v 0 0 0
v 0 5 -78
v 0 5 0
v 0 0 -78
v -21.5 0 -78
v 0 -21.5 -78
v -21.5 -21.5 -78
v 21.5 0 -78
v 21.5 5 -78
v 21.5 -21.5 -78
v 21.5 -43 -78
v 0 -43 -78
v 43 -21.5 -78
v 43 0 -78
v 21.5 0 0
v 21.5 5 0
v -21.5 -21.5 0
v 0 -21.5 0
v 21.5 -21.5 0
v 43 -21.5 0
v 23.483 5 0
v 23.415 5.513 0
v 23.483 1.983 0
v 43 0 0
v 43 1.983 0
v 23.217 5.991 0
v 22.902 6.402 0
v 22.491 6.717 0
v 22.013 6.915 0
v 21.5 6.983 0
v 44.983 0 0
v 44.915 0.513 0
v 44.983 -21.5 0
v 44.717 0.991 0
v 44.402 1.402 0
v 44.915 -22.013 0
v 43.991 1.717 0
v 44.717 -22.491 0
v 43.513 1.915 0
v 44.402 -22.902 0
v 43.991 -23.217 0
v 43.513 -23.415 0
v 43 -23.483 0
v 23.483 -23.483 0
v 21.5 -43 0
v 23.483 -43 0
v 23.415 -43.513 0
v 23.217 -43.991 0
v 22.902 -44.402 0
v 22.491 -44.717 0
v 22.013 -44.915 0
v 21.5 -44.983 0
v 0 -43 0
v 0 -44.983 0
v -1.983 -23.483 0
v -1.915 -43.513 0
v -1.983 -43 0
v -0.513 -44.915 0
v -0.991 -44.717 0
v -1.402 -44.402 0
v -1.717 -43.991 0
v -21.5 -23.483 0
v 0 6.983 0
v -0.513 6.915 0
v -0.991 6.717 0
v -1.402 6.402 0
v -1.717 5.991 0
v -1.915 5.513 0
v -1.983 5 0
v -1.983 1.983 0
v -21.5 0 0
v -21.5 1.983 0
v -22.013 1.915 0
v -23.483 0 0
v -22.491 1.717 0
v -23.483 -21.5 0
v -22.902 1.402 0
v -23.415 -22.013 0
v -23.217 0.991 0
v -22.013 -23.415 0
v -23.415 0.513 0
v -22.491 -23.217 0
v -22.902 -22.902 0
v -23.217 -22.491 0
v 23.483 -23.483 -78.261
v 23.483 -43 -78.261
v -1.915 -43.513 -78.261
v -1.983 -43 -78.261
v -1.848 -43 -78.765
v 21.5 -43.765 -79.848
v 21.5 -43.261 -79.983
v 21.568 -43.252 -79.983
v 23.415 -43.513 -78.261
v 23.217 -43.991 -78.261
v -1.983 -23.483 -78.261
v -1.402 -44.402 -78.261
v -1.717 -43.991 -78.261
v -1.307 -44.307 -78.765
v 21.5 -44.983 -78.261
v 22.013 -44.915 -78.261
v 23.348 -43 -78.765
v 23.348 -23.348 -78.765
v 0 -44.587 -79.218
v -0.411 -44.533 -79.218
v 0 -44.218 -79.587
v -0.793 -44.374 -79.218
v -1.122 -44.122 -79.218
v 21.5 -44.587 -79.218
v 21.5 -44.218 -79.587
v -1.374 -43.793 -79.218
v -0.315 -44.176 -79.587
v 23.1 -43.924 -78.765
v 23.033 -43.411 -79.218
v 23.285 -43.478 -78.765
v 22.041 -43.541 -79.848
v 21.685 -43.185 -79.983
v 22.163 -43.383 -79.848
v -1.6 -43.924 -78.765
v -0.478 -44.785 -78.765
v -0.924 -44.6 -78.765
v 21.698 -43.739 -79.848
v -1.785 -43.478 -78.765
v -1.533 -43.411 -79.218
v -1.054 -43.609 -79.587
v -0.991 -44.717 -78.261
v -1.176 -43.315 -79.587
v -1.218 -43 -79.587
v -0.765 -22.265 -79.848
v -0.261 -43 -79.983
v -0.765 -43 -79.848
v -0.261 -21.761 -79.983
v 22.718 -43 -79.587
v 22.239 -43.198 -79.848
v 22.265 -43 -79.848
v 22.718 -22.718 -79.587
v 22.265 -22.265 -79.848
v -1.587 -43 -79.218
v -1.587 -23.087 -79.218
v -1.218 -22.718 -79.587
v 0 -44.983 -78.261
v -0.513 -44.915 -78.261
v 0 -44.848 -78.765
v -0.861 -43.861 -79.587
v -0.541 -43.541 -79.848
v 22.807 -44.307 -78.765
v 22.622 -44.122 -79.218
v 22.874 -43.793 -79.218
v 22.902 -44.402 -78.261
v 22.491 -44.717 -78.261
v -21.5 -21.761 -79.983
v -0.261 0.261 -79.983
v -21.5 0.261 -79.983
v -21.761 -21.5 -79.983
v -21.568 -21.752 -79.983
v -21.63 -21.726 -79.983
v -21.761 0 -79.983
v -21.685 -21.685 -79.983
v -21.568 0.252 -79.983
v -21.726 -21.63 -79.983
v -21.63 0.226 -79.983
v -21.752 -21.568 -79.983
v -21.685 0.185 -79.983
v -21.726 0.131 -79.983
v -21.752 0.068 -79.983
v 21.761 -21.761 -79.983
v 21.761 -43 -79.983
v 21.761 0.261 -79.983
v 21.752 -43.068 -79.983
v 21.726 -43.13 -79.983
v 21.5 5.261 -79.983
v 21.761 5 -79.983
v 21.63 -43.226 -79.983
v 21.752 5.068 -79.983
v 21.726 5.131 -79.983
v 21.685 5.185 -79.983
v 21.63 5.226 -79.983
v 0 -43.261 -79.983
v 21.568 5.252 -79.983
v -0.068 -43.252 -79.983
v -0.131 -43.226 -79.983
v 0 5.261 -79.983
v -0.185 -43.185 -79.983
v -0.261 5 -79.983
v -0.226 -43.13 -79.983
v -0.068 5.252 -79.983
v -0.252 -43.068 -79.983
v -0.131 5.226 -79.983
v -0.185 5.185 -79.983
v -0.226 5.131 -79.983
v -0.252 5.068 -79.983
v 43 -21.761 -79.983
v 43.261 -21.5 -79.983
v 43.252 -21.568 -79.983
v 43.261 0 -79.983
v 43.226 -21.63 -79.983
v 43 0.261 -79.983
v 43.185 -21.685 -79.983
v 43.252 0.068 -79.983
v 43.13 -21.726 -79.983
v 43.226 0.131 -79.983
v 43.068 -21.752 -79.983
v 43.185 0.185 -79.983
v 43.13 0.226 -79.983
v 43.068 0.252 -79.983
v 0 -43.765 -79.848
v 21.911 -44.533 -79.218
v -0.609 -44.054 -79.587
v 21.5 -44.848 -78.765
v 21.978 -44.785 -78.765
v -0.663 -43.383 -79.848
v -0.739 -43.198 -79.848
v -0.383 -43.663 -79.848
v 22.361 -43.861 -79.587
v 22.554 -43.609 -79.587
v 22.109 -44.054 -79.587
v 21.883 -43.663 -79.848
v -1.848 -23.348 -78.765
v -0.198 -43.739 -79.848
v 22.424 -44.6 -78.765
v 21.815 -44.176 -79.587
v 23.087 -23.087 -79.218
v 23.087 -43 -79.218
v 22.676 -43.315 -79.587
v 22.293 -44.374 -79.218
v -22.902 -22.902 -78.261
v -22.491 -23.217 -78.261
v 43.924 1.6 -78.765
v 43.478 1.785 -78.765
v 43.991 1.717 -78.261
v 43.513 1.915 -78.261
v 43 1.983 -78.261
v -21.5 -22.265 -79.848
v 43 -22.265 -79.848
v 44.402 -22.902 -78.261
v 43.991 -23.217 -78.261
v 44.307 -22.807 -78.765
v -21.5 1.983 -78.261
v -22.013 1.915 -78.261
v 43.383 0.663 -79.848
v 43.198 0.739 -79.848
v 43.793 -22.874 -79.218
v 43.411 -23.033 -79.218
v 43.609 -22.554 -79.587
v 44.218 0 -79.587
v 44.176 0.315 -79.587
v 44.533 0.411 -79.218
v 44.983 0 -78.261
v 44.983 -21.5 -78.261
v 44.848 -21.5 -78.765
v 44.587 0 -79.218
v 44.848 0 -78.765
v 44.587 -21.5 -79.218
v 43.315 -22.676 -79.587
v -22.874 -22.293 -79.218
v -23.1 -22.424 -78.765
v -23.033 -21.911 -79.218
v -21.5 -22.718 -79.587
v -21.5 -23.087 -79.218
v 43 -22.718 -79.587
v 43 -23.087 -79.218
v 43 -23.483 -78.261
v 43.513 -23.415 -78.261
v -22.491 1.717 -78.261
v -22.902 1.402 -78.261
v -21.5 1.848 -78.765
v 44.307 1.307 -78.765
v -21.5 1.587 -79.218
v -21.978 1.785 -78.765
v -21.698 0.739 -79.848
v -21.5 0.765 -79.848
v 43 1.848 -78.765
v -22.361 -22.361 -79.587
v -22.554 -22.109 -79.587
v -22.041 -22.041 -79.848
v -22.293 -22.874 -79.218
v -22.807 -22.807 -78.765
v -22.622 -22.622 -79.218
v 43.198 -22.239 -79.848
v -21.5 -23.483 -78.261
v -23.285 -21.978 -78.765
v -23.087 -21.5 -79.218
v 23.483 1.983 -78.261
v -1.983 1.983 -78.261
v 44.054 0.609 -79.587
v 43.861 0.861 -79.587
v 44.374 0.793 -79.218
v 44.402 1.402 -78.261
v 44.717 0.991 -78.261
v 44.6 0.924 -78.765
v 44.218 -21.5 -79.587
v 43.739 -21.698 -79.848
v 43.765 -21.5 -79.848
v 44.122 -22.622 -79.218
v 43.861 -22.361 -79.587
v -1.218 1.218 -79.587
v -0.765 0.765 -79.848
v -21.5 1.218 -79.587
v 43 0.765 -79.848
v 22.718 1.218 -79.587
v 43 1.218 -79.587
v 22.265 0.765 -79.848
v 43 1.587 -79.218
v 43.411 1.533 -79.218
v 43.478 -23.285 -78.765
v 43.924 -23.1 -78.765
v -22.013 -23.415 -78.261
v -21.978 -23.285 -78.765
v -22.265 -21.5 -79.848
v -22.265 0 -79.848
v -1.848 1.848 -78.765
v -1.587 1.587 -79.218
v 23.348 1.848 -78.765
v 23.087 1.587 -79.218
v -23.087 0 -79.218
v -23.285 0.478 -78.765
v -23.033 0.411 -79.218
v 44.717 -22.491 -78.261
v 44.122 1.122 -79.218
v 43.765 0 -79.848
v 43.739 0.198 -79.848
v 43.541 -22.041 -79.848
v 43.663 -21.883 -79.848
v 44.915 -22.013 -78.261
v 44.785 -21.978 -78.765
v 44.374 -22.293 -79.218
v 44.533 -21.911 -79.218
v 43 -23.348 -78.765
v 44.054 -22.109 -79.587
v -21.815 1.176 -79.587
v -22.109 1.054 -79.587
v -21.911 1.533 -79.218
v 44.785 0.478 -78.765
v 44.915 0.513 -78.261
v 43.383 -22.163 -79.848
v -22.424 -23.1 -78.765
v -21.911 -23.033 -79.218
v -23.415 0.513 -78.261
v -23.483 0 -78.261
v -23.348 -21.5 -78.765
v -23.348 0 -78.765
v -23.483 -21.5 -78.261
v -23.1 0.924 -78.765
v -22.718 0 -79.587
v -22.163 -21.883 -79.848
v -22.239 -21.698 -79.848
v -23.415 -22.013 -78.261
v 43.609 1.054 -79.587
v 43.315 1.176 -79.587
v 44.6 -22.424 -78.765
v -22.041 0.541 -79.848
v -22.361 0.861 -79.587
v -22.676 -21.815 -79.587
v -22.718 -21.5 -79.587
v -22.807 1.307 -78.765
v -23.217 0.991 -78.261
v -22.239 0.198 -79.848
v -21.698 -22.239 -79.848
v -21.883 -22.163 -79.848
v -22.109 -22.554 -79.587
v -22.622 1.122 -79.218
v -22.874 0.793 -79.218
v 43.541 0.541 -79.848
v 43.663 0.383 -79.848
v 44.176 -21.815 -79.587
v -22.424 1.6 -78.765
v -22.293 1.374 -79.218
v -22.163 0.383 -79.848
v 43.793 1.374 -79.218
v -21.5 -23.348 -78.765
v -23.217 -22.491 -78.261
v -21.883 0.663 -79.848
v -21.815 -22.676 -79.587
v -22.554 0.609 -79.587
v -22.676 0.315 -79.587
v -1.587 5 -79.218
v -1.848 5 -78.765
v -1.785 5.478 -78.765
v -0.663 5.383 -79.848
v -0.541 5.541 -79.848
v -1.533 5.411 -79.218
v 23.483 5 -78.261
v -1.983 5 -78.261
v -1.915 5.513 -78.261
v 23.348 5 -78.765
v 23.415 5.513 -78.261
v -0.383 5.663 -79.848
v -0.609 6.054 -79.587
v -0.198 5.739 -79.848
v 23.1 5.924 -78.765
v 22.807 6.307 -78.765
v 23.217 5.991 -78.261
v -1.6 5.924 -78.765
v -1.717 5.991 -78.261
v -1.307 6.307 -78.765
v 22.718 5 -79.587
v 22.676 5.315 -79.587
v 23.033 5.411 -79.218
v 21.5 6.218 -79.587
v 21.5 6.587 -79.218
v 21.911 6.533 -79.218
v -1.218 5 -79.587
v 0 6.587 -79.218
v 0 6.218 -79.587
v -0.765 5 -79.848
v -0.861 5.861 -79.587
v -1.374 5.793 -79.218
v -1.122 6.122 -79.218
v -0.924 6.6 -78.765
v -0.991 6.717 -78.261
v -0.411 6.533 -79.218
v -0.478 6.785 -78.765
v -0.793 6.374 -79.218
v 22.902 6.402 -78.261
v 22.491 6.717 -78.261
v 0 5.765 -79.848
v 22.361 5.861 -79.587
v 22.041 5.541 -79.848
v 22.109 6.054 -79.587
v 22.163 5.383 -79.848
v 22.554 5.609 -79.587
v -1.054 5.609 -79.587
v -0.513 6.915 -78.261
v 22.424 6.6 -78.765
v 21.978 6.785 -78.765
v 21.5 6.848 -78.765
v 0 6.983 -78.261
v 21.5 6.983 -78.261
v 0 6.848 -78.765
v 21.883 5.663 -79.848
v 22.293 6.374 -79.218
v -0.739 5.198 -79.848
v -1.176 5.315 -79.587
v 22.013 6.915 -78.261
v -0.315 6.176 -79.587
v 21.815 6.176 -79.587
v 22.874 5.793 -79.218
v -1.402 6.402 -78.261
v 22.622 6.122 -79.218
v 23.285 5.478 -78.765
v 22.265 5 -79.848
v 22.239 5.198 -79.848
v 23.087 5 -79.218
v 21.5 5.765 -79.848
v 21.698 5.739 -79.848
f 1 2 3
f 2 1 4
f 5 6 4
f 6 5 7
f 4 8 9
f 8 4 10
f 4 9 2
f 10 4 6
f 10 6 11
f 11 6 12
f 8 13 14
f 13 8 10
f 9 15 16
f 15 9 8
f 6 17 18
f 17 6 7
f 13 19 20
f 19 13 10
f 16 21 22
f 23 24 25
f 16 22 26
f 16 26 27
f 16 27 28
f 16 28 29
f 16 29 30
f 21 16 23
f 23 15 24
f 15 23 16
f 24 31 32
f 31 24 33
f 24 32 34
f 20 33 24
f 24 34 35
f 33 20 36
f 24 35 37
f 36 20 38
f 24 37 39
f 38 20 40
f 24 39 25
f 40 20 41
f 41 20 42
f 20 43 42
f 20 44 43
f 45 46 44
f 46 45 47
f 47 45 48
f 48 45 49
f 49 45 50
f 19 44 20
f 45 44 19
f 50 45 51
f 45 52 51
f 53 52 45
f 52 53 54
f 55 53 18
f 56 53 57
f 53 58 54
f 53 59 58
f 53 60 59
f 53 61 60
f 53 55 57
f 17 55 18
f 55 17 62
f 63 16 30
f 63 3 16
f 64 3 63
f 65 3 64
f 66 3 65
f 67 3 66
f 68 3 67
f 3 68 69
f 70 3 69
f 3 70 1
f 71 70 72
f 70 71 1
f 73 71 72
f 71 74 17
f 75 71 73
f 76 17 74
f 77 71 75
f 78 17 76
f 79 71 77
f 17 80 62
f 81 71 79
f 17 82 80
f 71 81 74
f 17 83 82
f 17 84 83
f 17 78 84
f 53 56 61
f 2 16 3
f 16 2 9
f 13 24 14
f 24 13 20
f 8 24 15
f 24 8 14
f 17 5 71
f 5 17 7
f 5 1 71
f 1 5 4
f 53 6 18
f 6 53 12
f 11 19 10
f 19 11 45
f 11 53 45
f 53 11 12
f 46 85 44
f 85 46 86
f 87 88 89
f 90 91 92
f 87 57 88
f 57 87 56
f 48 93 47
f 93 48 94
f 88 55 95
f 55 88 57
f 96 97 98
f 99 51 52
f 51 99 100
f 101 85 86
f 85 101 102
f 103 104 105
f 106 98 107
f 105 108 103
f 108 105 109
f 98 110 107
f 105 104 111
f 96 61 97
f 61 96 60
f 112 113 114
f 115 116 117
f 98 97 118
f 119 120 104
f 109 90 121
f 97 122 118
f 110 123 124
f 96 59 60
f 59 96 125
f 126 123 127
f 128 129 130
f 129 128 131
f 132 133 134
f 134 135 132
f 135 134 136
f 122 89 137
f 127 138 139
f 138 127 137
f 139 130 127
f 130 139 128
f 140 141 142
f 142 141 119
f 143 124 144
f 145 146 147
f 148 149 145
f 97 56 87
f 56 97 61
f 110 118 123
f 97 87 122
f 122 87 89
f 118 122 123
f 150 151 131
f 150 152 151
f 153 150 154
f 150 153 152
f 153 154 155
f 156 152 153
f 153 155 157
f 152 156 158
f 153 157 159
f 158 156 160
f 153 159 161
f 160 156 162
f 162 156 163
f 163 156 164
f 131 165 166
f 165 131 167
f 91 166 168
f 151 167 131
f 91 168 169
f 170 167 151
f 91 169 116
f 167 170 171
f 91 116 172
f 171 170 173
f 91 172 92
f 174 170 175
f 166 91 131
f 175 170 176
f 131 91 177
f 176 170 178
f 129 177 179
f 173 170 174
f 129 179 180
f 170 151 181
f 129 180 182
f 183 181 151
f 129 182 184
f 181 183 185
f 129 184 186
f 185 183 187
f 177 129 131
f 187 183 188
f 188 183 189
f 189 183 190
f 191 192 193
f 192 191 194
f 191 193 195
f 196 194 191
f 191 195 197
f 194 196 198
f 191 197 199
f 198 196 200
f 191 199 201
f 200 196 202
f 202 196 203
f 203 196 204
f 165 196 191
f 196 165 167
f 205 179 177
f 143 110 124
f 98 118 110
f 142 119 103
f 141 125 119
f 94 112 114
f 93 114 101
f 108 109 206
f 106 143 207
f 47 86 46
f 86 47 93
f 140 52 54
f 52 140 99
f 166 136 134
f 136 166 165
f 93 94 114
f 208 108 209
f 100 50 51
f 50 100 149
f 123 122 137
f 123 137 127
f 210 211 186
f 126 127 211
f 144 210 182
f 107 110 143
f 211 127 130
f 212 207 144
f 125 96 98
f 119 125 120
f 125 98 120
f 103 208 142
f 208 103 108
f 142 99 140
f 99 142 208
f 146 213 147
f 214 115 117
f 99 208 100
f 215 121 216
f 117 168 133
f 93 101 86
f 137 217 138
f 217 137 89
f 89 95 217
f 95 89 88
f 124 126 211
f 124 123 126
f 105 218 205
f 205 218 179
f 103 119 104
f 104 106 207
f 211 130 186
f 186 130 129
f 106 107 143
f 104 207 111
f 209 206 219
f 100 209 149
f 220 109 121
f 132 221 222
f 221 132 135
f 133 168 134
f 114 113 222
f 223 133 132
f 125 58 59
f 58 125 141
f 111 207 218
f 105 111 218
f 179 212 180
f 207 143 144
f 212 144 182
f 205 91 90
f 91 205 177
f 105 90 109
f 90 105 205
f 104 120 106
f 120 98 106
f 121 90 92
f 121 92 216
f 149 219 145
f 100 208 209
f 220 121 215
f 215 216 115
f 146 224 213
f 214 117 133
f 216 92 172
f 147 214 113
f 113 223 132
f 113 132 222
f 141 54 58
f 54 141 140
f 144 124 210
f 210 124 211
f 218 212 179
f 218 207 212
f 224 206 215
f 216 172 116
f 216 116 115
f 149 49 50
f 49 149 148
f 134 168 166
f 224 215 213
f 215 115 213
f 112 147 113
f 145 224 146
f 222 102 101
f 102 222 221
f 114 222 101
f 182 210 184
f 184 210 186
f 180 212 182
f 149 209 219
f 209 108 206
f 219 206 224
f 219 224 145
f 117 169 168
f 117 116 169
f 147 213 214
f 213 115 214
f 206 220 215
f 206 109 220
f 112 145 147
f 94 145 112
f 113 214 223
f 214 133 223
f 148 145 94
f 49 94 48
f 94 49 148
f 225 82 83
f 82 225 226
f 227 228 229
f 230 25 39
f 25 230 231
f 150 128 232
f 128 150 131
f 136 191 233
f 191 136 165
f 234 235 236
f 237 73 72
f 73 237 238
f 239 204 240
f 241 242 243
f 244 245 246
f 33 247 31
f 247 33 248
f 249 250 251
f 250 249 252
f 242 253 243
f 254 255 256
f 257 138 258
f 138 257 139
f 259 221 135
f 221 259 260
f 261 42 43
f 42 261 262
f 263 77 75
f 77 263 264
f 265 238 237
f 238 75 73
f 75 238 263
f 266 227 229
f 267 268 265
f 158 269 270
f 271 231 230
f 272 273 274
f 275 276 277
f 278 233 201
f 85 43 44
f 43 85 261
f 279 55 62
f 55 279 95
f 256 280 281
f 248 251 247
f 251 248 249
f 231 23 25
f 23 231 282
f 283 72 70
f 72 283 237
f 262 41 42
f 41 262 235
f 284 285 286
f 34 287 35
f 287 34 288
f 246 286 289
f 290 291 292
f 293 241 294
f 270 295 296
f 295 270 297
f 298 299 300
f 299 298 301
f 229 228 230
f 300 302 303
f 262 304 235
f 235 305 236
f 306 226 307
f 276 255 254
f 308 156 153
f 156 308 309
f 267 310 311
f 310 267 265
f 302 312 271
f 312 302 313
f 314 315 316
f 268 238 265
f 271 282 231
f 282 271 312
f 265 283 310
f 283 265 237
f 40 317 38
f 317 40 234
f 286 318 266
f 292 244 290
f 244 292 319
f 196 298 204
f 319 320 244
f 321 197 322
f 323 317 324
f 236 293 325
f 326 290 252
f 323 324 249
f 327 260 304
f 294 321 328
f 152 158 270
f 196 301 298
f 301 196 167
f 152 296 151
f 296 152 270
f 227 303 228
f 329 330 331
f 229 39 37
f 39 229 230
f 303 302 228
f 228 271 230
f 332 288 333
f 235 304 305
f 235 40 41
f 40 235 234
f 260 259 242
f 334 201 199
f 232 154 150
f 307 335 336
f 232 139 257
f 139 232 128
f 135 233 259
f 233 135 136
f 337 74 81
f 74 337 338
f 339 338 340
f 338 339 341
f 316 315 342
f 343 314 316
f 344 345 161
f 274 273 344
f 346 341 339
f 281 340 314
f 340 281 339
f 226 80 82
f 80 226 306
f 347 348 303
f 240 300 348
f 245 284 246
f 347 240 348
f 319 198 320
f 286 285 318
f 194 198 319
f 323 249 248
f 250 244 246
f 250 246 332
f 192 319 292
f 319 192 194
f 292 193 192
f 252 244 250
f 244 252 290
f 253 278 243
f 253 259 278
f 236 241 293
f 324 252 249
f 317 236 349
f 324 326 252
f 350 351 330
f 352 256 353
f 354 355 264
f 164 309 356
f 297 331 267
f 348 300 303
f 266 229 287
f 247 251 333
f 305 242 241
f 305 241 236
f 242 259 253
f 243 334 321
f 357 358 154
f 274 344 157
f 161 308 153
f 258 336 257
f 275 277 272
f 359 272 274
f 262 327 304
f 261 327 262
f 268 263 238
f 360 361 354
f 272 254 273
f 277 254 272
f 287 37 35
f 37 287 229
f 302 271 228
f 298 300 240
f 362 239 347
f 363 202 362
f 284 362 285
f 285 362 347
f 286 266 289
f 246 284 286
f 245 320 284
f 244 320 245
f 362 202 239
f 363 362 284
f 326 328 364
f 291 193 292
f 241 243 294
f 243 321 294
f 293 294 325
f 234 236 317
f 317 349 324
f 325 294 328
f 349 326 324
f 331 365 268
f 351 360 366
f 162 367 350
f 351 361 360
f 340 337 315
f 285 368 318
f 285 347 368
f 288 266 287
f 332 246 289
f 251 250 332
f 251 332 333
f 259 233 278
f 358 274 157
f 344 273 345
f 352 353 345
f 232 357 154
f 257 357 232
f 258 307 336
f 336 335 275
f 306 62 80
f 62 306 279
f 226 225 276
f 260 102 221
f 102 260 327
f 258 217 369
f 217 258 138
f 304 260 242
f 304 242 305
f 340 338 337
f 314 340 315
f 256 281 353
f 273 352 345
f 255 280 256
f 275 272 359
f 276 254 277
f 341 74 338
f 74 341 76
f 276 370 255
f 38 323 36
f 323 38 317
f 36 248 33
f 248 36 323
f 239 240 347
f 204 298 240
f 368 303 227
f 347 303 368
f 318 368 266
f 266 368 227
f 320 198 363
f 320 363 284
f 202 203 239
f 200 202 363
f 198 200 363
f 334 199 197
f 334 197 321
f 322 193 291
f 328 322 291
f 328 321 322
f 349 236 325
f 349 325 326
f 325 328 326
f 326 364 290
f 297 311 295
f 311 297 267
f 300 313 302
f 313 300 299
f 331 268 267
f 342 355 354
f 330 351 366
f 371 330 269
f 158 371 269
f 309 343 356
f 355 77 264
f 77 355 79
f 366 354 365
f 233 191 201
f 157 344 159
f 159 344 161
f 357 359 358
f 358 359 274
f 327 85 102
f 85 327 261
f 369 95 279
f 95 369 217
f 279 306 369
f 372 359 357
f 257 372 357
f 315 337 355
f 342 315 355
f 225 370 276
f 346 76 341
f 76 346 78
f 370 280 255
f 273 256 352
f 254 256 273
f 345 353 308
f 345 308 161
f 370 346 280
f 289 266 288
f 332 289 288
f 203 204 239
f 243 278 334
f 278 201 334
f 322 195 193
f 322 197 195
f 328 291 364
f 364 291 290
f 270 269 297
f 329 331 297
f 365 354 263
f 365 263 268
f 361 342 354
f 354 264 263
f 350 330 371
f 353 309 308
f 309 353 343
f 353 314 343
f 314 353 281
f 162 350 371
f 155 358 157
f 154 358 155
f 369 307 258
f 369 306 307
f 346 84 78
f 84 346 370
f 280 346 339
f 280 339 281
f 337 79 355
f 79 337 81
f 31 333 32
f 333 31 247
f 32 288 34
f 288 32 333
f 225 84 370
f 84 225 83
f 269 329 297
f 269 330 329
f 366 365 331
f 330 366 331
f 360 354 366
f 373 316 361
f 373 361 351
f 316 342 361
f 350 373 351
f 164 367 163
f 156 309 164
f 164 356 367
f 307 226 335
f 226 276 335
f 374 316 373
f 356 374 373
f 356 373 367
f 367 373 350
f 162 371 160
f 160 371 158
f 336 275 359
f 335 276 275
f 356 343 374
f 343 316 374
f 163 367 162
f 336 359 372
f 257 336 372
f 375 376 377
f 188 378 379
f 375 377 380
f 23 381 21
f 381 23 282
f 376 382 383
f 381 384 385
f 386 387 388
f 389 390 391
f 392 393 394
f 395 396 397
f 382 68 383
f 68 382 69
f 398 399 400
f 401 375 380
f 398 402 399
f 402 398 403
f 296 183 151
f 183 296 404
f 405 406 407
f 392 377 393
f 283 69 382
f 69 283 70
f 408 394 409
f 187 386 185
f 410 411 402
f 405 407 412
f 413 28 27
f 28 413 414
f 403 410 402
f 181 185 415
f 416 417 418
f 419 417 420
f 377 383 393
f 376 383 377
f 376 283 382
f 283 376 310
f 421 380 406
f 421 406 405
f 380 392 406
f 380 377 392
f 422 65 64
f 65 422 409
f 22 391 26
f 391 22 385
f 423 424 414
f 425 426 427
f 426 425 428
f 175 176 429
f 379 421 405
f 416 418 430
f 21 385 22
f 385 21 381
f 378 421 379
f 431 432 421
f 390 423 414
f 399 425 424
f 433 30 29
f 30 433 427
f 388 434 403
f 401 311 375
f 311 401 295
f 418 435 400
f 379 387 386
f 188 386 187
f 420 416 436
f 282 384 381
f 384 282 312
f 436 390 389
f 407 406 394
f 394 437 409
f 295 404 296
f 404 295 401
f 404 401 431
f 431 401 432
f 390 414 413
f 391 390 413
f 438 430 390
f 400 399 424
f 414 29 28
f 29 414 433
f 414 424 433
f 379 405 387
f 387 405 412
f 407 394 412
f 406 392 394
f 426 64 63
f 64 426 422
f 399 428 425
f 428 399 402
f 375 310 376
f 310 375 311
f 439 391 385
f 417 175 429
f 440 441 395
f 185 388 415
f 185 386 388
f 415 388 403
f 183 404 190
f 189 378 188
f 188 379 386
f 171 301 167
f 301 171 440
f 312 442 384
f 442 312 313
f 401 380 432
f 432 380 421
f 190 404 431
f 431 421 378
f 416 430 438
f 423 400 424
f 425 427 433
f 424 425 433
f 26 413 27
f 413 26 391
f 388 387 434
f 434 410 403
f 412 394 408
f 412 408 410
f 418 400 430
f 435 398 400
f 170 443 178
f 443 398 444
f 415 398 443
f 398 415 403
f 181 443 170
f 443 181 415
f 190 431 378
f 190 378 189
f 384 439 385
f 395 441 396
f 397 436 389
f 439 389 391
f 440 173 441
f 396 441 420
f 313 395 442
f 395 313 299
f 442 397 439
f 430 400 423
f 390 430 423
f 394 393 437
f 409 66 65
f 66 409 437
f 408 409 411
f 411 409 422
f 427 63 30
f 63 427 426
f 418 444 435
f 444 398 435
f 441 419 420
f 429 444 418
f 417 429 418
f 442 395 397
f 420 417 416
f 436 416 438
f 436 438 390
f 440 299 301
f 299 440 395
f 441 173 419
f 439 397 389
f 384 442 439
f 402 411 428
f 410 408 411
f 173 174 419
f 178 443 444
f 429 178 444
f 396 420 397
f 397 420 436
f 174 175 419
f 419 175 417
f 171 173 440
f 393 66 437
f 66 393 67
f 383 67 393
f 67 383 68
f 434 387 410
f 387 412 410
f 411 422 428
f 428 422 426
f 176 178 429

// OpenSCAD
batt_holder_xy = 21.5;
batt_holder_z = 78;
bms_x = 5;
wt = 2;
$fn = 24;
screw_hole_r = 2;
wire_hole_r = 2;

module holder() {
    cube([batt_holder_xy, batt_holder_xy, batt_holder_z]);
}
module bms() {
    cube([batt_holder_xy, bms_x, batt_holder_z]);
}
module holders() {
    holder();
    translate([0,-bms_x,0]) bms();
    translate([batt_holder_xy,0,0]) holder();
    translate([-batt_holder_xy,0,0]) holder();
    translate([0, batt_holder_xy,0]) holder();

}

module case_whole () {
    difference () {
        minkowski() {
            holders();
            sphere(r=wt);
        }
        holders();
    }
}

post_xy = wt;

module align_post() {
    cube([post_xy,post_xy,wt]);
}

module lid() {
    difference () {
        case_whole();
        translate([0,0,51]) cube([100,100,100], center=true);
        translate([batt_holder_xy/2,batt_holder_xy/2,-50]) cylinder(r=screw_hole_r,h=100);
        translate([batt_holder_xy/2,-bms_x/2,-50]) cylinder(r=wire_hole_r,h=100);
    }
    translate([-batt_holder_xy,0,0]) align_post();
    translate([-batt_holder_xy,batt_holder_xy-post_xy,0]) align_post();
    translate([batt_holder_xy*2-post_xy,0,0]) align_post();
    translate([batt_holder_xy*2-post_xy,batt_holder_xy-post_xy,0]) align_post();
    translate([0,batt_holder_xy*2-wt,0]) align_post();
    translate([batt_holder_xy-wt,batt_holder_xy*2-wt,0]) align_post();
    translate([0,-bms_x,0]) align_post();
    translate([batt_holder_xy-wt,-bms_x,0]) align_post();
}

module case () {
    difference () {
        case_whole();
        translate([0,0,-50]) cube([100,100,100], center=true);
    }
}


rotate([180,0,0]) case();
// lid();
